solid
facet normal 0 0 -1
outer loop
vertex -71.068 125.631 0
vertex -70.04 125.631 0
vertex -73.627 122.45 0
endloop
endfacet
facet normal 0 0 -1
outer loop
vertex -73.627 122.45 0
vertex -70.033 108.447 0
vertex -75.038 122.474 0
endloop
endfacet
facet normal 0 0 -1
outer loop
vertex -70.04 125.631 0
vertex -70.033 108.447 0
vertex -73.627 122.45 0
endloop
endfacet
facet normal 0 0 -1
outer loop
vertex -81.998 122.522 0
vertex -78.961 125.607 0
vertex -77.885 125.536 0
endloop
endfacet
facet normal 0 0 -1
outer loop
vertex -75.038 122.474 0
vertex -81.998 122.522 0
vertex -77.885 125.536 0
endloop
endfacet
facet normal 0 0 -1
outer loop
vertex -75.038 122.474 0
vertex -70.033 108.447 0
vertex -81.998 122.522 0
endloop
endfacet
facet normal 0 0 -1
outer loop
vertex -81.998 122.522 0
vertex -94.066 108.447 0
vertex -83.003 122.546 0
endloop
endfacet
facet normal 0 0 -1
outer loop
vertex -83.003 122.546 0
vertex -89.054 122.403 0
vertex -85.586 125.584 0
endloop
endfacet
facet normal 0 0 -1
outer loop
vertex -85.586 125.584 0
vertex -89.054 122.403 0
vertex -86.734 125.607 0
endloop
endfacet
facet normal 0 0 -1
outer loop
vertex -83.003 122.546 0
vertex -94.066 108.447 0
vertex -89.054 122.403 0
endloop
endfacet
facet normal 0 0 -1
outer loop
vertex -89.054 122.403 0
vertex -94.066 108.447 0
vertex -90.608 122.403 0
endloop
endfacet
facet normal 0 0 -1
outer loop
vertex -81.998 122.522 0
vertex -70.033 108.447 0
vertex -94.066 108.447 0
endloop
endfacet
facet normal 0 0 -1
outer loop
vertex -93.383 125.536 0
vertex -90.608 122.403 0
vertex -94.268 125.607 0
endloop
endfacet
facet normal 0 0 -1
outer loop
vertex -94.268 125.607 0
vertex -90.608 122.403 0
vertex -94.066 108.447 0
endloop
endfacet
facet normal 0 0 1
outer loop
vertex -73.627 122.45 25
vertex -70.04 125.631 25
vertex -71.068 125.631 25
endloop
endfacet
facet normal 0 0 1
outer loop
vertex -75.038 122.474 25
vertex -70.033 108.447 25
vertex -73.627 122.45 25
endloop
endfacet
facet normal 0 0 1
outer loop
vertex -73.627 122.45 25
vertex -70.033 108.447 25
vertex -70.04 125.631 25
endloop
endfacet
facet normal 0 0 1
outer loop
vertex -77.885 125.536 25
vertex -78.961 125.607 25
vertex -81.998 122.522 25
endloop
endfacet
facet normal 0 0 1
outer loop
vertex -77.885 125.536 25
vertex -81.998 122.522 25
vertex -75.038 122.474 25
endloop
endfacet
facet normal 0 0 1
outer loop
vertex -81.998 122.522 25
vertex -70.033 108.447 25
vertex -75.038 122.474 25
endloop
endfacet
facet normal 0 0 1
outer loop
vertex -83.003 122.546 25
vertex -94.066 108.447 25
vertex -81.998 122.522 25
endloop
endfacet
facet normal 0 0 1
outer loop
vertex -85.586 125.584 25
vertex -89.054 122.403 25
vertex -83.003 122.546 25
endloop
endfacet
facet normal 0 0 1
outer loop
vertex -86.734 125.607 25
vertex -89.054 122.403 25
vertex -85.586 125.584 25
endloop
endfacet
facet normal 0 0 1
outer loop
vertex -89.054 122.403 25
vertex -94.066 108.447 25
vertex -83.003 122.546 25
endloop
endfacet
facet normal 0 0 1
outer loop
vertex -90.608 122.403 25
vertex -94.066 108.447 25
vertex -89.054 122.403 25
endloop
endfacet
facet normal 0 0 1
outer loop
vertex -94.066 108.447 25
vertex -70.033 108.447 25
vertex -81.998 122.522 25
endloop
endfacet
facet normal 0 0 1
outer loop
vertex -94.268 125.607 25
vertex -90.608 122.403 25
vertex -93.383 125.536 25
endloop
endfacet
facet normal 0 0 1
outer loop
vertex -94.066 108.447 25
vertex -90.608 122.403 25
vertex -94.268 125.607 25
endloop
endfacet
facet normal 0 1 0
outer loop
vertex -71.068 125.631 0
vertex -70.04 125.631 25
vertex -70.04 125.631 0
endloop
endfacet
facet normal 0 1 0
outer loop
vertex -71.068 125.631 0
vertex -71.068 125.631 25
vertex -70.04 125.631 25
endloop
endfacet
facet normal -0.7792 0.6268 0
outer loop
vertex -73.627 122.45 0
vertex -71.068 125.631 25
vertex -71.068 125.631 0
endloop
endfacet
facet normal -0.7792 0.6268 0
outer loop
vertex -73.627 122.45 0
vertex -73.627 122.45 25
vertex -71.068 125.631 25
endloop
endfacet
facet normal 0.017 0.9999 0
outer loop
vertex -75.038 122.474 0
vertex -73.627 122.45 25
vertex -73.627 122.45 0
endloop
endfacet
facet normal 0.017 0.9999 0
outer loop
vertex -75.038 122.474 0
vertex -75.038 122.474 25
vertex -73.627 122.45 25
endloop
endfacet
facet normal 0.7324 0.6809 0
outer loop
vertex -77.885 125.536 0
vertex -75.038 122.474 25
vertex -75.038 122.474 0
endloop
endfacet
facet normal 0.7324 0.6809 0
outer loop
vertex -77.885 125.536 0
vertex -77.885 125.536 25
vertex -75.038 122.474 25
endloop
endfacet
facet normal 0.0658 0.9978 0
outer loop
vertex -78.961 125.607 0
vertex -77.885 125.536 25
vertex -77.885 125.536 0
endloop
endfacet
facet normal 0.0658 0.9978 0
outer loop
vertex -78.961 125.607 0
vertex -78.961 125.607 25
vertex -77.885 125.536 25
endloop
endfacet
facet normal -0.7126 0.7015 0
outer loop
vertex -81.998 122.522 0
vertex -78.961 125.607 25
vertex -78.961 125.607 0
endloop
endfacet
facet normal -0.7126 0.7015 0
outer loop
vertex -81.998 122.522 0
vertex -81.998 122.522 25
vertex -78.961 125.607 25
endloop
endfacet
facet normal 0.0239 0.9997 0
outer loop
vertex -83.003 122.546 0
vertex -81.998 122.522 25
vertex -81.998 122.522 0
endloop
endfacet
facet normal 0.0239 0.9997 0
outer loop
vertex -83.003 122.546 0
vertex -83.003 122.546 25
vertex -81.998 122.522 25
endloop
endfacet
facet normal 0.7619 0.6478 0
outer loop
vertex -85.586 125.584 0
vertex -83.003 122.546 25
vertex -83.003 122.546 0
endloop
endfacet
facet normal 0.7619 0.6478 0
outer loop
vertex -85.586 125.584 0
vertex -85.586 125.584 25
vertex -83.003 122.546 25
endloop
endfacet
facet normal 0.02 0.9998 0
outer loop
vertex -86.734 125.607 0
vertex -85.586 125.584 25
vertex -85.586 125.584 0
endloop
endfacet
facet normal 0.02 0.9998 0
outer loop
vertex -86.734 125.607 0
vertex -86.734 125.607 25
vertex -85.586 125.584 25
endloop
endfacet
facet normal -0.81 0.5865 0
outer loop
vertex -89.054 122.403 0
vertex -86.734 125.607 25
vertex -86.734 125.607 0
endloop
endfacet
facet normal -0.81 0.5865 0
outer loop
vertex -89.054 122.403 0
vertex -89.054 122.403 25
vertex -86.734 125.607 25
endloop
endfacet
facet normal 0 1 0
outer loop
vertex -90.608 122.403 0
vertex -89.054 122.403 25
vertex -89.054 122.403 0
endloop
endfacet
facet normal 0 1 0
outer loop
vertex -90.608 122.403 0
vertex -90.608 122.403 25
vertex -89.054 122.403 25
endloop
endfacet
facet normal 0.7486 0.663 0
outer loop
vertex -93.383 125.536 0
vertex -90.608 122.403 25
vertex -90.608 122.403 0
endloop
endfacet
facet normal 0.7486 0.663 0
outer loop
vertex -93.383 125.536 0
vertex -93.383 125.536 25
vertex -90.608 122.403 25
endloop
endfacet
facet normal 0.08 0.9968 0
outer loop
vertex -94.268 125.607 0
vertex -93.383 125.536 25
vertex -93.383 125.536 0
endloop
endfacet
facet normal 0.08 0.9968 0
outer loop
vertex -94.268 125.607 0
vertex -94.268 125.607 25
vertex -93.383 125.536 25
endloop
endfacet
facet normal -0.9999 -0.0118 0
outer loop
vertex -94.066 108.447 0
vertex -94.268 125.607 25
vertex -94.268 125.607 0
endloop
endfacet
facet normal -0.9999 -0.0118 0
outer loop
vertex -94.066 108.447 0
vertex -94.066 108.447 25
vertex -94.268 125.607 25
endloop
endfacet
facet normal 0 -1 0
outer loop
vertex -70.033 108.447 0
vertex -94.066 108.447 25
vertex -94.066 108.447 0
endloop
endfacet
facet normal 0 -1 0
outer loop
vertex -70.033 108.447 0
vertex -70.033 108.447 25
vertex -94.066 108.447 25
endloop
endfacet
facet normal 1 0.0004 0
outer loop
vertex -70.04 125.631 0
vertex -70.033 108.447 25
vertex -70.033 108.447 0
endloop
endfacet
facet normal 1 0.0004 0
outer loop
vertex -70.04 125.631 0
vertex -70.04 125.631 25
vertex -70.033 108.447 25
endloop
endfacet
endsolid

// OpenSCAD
linear_extrude(height=25)path4071();

module path4071()
    polygon(
        points=
            [[-94.066, 108.447], [-70.033, 108.447], [-70.04, 125.631], [-71.068, 125.631], [-73.627, 122.45], [-75.038, 122.474], [-77.885, 125.536], [-78.961, 125.607], [-81.998, 122.522], [-83.003, 122.546], [-85.586, 125.584], [-86.734, 125.607], [-89.054, 122.403], [-90.608, 122.403], [-93.383, 125.536], [-94.268, 125.607]],
        paths=
            [[0, 1, 2, 3, 4, 5, 6, 7, 8, 9, 10, 11, 12, 13, 14, 15, 0]]
    );
